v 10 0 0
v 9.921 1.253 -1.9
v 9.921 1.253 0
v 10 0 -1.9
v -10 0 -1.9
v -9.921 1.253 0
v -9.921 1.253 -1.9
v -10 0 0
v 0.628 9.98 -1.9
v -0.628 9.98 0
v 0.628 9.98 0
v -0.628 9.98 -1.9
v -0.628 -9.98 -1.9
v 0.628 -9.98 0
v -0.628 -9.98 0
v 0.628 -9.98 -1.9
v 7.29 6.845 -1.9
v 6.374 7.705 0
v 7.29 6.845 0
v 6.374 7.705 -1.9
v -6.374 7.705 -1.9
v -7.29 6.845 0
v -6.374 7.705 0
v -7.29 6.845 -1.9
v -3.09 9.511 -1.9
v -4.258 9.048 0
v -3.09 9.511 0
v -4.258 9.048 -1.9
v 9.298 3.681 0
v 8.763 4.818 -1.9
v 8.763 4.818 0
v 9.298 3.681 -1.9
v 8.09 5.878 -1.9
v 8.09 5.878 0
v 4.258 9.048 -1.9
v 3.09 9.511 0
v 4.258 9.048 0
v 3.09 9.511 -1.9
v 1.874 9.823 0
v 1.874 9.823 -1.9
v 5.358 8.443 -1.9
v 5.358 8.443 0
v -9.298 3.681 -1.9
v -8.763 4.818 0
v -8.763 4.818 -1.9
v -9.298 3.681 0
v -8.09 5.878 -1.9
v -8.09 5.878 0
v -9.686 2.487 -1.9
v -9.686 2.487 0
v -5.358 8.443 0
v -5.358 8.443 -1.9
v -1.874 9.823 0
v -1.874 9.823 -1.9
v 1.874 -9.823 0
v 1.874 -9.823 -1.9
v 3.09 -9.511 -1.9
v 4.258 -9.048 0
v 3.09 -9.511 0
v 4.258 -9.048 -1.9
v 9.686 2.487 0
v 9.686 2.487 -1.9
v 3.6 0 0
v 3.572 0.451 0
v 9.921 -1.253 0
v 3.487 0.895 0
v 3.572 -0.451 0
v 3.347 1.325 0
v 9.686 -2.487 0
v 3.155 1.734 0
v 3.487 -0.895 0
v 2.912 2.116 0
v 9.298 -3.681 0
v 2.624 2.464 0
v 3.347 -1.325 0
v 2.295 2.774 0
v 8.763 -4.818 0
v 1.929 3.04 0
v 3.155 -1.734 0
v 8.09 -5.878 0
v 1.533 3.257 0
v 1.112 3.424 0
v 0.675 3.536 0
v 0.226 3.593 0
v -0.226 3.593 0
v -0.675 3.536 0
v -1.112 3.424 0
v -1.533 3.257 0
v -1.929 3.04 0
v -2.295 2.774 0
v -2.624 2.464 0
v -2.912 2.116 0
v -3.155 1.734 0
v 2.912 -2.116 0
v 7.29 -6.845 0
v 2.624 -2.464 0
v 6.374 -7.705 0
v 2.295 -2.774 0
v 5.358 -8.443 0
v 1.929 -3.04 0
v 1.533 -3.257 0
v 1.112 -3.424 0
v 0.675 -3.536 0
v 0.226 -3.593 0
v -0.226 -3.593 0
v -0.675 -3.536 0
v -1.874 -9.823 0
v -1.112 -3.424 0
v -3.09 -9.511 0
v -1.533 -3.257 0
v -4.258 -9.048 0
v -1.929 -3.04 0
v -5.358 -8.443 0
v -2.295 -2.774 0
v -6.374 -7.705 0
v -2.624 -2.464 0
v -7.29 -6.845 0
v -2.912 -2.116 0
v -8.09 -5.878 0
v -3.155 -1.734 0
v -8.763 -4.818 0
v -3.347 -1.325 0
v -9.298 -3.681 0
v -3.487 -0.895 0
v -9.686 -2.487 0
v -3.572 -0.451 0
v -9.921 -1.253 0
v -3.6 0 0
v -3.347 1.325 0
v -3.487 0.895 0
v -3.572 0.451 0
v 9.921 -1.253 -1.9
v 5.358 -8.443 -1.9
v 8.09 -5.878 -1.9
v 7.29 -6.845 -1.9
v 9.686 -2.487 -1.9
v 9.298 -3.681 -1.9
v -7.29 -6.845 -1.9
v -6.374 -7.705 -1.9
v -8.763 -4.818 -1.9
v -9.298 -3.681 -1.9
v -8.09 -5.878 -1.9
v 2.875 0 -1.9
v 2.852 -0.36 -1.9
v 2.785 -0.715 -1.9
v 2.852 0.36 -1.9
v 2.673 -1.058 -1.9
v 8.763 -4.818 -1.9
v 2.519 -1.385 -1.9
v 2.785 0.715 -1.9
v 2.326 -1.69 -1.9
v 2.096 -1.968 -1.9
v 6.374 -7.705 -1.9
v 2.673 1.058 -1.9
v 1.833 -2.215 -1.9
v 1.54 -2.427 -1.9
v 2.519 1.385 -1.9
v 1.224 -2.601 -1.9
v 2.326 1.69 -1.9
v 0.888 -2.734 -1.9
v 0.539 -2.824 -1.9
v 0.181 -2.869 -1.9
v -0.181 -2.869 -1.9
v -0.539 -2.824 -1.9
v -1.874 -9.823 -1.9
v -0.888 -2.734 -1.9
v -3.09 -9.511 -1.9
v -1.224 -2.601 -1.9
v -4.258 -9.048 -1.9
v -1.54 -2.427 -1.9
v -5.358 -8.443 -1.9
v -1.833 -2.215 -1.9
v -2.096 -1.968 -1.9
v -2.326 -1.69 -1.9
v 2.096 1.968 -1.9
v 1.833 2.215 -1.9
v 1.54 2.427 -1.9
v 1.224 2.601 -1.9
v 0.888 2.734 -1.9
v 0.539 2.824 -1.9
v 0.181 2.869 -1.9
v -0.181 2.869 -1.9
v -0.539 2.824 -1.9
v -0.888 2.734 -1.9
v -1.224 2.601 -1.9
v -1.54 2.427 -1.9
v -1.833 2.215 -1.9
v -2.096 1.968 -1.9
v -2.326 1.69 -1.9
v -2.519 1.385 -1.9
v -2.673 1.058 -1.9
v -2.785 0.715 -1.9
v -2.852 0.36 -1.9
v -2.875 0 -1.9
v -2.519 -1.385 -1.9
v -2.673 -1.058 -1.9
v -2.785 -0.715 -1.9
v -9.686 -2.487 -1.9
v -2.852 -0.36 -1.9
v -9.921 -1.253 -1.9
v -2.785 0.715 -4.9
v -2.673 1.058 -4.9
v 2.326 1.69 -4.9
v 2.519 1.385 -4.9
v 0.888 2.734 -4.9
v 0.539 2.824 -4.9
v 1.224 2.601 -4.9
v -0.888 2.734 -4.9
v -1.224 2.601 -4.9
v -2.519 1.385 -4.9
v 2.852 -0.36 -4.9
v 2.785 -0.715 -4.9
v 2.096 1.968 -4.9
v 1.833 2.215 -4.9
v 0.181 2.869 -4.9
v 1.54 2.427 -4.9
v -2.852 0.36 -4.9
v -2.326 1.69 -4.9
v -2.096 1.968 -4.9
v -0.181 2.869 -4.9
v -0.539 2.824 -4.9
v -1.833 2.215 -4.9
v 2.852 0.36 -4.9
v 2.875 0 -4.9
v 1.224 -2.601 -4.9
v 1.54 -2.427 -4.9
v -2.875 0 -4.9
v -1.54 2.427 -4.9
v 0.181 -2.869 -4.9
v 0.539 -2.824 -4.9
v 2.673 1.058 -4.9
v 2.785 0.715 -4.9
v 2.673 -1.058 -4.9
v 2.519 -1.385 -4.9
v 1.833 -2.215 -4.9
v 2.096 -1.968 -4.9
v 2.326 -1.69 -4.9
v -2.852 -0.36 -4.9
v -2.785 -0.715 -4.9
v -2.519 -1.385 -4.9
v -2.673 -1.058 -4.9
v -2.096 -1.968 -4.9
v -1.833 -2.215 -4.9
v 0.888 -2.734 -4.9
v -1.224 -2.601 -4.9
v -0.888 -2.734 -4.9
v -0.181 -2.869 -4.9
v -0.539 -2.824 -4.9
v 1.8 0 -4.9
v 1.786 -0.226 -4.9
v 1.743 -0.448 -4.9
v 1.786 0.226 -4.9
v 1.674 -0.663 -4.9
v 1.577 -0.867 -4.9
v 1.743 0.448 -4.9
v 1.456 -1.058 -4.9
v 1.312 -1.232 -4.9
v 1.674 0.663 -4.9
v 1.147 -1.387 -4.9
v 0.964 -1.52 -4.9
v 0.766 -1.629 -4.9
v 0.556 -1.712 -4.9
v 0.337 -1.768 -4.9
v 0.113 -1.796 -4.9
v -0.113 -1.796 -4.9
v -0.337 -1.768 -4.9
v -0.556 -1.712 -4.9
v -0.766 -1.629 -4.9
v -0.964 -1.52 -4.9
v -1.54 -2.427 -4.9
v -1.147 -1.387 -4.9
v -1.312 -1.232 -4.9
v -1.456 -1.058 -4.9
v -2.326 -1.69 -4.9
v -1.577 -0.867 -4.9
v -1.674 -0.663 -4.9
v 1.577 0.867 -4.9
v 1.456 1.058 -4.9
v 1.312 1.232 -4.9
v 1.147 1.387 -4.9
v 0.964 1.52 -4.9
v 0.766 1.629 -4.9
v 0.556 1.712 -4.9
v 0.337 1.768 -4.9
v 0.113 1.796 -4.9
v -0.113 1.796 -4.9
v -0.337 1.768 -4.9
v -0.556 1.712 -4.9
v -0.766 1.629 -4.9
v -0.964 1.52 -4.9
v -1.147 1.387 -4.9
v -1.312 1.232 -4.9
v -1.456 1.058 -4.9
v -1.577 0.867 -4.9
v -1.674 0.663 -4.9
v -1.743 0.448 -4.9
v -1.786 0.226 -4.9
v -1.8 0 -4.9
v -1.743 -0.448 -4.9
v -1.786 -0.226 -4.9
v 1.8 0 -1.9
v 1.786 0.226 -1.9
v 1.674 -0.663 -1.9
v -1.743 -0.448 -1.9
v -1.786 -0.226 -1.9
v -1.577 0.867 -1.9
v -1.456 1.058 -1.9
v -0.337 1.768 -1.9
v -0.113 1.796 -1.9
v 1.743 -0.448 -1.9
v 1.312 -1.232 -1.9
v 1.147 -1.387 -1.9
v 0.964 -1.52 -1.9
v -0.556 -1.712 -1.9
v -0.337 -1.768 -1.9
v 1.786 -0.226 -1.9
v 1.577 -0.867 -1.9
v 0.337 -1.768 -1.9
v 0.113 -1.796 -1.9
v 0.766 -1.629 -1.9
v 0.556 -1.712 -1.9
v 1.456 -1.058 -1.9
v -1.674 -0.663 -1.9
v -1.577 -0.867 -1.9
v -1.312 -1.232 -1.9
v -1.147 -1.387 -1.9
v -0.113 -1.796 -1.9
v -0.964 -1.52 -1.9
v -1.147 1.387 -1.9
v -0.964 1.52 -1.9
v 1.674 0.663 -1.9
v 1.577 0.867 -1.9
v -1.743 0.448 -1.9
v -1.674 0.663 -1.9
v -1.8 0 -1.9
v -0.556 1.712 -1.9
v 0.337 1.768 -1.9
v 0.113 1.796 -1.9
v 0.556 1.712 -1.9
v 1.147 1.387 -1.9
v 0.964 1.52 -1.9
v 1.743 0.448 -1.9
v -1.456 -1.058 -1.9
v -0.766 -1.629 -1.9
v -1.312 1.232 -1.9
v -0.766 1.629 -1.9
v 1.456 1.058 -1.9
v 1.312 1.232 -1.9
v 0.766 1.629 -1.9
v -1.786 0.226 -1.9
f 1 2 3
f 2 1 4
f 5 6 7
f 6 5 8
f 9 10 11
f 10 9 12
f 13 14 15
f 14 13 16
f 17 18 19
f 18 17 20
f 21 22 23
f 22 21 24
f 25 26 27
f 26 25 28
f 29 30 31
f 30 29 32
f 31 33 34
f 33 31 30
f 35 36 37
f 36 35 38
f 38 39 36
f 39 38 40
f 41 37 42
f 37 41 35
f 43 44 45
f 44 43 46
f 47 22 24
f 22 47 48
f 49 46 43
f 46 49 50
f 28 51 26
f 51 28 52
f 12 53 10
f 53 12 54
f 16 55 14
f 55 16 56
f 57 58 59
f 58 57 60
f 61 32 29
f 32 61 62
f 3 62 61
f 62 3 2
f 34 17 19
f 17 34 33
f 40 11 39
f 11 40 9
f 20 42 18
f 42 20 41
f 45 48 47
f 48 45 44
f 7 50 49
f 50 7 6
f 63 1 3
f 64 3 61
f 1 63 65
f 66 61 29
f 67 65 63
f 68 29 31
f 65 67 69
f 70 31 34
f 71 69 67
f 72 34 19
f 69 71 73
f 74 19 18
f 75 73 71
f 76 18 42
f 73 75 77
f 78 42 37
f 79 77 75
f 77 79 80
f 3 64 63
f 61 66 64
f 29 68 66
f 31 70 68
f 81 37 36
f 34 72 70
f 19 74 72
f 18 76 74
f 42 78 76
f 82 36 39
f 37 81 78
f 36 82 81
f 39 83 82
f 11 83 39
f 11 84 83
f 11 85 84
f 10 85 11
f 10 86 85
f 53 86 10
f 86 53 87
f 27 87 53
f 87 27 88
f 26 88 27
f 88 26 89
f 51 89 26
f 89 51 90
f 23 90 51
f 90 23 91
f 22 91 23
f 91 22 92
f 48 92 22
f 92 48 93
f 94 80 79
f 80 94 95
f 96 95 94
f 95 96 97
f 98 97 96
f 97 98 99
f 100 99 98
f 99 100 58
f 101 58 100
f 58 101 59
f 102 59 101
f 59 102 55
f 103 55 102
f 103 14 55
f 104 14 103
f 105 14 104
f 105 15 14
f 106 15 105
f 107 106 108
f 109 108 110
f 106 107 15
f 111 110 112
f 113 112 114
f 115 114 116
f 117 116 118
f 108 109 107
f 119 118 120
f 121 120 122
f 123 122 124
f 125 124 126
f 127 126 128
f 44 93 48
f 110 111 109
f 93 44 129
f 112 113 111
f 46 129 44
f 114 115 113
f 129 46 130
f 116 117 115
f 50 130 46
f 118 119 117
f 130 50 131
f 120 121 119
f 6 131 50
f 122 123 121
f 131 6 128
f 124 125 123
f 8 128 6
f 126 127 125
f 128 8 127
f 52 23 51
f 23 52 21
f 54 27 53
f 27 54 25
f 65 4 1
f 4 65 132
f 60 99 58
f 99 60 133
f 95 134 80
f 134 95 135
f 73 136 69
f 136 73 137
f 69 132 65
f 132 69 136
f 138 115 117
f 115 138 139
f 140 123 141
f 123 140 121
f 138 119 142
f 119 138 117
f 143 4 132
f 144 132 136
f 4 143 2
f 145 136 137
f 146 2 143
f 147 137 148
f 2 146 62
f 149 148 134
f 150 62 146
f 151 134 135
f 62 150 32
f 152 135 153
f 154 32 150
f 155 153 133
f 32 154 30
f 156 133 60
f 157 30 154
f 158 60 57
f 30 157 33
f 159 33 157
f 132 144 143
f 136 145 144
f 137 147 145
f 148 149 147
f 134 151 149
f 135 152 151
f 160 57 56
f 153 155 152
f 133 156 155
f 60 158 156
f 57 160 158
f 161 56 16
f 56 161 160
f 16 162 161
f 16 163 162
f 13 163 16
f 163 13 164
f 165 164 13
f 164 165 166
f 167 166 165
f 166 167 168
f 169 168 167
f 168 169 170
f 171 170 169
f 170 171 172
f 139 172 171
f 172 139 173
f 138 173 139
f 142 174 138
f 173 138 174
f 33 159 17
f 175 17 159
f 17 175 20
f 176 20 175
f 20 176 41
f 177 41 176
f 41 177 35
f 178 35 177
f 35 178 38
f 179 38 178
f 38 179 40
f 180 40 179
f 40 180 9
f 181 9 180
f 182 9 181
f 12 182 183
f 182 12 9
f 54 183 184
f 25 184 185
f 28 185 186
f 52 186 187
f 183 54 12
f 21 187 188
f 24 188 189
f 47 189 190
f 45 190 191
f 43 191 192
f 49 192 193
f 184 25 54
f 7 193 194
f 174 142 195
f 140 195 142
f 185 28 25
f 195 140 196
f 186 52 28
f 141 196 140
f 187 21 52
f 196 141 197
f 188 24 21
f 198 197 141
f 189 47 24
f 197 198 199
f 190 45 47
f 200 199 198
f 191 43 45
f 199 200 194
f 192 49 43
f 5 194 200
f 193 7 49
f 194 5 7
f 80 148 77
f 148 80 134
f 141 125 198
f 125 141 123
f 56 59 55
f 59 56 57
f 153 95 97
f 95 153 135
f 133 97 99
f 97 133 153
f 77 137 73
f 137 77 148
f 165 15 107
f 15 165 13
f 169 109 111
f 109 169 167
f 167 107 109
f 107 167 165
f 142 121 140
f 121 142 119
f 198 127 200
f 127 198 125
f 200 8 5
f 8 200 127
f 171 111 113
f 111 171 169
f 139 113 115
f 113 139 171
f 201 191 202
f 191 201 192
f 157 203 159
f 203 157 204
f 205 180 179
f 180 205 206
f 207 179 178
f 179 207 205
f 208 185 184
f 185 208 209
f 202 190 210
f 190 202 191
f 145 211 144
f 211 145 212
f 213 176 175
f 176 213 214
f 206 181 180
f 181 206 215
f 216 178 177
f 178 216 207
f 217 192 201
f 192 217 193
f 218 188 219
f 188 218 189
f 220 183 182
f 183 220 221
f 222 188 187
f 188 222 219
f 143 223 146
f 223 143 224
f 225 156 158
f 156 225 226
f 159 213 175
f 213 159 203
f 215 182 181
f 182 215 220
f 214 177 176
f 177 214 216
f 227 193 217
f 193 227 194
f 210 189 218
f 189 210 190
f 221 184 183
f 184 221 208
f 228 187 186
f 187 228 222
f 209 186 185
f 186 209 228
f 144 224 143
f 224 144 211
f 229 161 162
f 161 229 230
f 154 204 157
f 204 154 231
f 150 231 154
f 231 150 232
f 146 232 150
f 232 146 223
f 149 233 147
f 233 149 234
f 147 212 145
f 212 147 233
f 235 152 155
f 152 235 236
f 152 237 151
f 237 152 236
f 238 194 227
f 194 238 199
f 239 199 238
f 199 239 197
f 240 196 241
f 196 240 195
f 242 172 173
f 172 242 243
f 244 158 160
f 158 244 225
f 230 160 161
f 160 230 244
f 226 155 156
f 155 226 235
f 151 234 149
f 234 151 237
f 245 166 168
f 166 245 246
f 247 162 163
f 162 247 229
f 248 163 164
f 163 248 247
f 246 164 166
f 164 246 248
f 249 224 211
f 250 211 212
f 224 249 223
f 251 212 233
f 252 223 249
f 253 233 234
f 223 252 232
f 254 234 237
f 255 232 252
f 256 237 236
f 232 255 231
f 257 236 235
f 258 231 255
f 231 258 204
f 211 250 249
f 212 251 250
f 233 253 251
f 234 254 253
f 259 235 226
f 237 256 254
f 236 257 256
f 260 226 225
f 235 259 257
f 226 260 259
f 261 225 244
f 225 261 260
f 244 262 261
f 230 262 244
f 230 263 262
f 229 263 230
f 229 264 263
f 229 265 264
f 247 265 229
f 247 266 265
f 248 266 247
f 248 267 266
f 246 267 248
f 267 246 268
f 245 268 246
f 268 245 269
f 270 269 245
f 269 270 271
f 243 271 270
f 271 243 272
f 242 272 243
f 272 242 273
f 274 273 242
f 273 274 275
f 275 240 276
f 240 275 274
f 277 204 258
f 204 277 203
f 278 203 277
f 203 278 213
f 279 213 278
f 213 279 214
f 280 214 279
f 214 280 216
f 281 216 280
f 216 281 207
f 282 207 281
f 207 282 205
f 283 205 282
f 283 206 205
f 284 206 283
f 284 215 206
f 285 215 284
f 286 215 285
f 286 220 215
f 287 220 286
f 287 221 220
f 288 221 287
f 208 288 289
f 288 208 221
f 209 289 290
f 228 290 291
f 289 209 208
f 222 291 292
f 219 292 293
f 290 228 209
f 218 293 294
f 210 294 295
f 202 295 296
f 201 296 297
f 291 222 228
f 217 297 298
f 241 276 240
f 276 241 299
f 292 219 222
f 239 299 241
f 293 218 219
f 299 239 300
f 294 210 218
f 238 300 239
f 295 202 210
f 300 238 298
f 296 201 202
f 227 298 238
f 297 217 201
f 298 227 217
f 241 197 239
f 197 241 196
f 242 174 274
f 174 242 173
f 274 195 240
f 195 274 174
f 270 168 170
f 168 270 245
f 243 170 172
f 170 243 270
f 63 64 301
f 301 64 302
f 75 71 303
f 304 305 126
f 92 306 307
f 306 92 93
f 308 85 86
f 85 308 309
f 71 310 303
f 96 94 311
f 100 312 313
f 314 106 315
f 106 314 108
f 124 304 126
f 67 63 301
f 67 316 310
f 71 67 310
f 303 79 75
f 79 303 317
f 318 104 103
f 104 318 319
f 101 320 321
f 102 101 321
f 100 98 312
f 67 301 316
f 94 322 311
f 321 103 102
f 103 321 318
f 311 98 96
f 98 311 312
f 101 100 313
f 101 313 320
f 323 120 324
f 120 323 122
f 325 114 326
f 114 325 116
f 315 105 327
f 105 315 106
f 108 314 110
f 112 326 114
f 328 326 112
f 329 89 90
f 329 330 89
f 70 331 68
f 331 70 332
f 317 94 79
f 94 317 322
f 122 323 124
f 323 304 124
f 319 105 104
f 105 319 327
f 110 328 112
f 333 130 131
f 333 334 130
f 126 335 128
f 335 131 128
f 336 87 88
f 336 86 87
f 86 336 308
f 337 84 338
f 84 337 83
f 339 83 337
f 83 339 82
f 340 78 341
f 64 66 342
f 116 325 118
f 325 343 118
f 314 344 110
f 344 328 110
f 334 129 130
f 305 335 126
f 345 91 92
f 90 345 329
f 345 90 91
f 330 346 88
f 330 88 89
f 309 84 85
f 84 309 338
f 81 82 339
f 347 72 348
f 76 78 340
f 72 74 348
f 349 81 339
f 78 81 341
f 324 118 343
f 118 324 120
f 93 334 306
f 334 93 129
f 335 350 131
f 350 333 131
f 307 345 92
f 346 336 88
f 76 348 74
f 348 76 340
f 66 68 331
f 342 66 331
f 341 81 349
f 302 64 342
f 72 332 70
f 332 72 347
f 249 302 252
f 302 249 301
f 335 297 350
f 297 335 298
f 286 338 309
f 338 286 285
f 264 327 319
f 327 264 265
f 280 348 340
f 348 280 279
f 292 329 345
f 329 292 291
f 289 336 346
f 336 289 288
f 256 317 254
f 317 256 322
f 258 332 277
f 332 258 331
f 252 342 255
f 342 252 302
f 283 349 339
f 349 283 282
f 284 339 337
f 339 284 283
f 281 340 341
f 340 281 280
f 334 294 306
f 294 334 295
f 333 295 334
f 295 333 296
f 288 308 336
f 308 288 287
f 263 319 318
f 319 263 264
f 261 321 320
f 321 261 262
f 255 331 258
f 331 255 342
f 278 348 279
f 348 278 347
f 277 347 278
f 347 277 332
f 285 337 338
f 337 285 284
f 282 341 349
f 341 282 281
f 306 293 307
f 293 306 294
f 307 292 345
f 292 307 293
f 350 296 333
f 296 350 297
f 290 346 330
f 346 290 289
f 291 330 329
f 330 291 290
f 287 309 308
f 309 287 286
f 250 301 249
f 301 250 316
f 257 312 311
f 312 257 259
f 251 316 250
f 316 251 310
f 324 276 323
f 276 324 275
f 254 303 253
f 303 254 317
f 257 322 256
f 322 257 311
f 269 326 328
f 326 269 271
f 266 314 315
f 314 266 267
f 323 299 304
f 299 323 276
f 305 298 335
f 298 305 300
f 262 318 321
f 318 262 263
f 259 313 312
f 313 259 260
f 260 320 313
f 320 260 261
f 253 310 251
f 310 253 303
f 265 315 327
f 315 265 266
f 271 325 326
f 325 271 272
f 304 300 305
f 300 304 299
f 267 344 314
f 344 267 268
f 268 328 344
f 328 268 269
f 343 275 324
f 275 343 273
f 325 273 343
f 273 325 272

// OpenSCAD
$fn = 50;


difference() {
	union() {
		translate(v = [0, 0, -1.9000000000]) {
			cylinder(h = 1.9000000000, r = 10.0000000000);
		}
		#translate(v = [0, 0, -4.9000000000]) {
			cylinder(h = 4.9000000000, r = 2.8750000000);
		}
	}
	union() {
		translate(v = [0, 0, 0]) {
			rotate(a = [0, 0, 0]) {
				difference() {
					union() {
						translate(v = [0, 0, -4.9000000000]) {
							cylinder(h = 4.9000000000, r = 1.5000000000);
						}
						translate(v = [0, 0, -1.9000000000]) {
							cylinder(h = 1.9000000000, r1 = 1.8000000000, r2 = 3.6000000000);
						}
						translate(v = [0, 0, -4.9000000000]) {
							cylinder(h = 4.9000000000, r = 1.8000000000);
						}
						translate(v = [0, 0, -4.9000000000]) {
							cylinder(h = 4.9000000000, r = 1.5000000000);
						}
					}
					union();
				}
			}
		}
	}
}
